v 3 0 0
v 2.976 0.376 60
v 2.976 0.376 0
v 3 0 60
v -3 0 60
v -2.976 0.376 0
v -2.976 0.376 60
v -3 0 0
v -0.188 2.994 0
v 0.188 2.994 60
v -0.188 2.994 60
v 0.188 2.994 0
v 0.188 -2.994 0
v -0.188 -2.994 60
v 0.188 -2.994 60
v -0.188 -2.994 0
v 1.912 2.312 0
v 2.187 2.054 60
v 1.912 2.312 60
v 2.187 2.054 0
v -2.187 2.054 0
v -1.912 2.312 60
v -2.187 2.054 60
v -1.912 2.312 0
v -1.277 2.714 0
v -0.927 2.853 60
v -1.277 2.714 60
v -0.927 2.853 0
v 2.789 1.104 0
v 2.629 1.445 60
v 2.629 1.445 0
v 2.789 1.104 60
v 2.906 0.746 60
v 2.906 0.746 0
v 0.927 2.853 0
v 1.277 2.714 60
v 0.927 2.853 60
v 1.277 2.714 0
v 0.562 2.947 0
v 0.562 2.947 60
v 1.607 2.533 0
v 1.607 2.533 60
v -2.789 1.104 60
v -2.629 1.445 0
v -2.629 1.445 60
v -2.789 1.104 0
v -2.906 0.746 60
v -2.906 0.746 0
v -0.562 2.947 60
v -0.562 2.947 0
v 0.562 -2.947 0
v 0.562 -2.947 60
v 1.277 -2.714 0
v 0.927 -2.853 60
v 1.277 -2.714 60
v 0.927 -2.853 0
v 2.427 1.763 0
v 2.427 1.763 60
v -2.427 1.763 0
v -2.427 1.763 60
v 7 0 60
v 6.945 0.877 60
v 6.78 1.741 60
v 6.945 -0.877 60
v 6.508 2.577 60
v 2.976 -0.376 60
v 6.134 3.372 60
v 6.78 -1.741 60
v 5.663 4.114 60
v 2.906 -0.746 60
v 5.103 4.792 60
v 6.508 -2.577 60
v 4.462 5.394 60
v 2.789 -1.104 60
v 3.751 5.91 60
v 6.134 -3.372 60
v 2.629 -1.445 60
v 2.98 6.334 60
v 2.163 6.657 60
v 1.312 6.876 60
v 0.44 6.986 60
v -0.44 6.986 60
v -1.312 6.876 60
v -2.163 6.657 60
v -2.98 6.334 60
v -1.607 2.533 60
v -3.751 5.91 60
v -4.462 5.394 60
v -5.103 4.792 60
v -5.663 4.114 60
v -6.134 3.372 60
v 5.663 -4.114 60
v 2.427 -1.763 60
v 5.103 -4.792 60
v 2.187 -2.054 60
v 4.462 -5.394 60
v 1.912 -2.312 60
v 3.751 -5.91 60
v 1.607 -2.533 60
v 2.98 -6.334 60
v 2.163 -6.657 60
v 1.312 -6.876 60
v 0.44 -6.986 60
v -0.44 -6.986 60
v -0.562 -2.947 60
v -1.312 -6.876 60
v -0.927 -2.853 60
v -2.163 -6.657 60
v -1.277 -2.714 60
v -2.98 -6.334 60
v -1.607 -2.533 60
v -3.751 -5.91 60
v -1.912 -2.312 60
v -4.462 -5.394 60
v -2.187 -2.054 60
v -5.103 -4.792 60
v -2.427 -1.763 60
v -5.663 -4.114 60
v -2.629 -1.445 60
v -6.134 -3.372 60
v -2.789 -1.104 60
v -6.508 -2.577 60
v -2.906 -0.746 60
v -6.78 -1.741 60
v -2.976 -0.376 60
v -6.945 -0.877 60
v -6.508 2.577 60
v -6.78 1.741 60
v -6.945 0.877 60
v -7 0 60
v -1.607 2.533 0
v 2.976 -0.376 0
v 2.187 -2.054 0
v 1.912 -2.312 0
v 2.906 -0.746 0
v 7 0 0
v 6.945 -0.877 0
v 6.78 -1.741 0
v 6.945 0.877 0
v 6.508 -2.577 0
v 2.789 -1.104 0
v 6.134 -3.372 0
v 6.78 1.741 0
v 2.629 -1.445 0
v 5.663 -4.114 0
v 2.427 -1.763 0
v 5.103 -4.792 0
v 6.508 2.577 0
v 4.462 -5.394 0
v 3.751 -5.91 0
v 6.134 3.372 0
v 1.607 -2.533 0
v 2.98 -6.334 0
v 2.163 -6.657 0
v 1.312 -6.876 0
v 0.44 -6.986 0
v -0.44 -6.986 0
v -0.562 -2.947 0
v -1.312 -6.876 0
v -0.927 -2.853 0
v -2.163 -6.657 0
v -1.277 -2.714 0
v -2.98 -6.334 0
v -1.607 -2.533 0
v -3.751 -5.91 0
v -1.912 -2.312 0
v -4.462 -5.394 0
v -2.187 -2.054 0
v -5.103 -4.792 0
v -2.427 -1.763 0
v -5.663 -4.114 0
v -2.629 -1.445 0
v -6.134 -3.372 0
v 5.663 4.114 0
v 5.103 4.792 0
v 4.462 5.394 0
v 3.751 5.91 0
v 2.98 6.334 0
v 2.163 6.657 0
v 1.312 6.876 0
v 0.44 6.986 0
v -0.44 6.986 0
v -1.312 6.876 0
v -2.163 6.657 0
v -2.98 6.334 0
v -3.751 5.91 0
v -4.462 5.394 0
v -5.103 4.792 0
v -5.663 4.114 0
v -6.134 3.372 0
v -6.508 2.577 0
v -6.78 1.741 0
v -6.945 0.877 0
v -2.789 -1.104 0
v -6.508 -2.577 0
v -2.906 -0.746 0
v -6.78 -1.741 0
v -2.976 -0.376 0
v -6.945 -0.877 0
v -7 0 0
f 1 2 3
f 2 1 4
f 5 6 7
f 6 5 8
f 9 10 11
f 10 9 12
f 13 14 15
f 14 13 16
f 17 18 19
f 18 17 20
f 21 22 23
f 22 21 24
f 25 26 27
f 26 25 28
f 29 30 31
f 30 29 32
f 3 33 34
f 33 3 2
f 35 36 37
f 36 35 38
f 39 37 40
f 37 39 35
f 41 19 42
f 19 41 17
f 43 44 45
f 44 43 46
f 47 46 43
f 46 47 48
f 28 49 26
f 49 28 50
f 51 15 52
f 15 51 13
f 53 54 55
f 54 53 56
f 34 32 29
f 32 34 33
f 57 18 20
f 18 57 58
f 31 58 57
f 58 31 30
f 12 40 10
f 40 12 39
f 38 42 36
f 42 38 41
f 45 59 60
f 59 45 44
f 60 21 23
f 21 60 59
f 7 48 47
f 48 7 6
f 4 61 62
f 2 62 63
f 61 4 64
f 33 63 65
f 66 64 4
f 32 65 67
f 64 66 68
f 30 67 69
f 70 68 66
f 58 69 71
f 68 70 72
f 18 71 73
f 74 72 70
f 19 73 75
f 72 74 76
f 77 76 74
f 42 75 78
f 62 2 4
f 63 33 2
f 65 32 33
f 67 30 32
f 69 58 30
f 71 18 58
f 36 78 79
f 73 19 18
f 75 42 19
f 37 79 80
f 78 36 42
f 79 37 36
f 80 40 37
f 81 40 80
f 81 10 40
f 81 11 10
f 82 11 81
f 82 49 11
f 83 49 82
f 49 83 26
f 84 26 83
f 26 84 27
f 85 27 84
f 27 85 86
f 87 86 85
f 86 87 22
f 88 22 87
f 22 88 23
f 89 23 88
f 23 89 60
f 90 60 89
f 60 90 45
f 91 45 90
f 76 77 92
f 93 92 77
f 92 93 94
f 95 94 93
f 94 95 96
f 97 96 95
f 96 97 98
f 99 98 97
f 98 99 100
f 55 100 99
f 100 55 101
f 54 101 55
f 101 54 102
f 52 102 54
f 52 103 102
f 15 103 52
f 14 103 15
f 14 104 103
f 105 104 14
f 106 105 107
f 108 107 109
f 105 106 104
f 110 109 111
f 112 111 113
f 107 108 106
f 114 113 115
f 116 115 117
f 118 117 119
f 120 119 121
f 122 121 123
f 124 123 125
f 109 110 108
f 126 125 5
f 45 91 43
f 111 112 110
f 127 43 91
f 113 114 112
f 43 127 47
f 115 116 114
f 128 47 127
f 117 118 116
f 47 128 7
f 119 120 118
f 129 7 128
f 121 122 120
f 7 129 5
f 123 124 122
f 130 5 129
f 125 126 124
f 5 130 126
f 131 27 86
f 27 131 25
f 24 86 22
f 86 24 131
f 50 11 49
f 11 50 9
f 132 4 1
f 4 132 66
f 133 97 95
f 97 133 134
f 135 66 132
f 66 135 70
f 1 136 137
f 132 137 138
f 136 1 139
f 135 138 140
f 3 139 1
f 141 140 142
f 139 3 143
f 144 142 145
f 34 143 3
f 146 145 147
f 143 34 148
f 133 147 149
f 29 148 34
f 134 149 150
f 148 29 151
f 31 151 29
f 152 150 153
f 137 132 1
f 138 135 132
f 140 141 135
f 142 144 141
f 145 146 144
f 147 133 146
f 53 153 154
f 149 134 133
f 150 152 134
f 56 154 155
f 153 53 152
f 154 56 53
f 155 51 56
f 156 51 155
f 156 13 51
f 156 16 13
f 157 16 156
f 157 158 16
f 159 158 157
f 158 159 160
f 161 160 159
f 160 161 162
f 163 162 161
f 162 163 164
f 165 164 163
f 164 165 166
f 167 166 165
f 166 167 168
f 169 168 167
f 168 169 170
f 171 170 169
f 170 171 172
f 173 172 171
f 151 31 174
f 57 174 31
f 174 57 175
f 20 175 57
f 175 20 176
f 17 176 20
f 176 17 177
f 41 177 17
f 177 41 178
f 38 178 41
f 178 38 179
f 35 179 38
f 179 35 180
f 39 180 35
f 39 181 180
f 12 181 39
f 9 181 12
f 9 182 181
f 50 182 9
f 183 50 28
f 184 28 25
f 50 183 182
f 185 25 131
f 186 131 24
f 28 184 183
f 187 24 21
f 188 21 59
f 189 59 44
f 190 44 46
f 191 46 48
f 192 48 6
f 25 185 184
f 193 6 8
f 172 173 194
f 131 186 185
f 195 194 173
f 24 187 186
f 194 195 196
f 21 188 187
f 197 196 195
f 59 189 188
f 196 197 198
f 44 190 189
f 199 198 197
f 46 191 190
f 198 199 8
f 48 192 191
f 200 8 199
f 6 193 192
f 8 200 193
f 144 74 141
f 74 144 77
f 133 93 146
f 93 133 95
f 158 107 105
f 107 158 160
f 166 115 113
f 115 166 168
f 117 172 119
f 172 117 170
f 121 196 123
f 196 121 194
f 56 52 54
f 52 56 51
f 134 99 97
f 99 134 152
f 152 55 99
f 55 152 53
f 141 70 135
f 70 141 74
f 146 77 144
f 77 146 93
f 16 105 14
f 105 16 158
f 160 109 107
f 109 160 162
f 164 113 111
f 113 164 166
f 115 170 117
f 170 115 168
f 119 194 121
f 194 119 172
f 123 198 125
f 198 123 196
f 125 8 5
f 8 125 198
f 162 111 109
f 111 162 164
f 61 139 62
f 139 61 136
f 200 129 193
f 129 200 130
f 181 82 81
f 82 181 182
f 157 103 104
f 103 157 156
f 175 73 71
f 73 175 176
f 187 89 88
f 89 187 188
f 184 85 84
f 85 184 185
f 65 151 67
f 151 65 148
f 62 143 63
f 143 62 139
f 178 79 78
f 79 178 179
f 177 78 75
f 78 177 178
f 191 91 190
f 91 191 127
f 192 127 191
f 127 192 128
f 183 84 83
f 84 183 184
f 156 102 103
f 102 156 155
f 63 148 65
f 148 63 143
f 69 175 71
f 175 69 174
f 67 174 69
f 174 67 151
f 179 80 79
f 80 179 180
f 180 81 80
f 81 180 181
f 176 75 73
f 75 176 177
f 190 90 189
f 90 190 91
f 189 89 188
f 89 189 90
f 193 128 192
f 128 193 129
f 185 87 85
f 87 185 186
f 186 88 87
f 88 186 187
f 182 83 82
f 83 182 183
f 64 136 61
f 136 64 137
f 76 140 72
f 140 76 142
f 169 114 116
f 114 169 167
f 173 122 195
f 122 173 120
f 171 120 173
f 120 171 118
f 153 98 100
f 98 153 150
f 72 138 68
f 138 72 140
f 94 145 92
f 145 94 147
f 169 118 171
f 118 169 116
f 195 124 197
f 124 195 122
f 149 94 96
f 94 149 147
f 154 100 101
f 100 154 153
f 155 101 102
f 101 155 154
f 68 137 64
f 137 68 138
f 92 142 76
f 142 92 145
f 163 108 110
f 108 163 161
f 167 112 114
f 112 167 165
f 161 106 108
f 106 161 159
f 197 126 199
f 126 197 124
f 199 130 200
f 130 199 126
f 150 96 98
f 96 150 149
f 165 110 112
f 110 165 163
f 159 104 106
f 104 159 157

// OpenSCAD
$fn = 50;


difference() {
	union() {
		cylinder(h = 60, r = 7.0000000000);
	}
	union() {
		cylinder(h = 60, r = 3.0000000000);
		cylinder(h = 60, r = 1.5000000000);
		cylinder(h = 60, r = 1.5000000000);
		cylinder(h = 60, r = 1.5000000000);
	}
}
